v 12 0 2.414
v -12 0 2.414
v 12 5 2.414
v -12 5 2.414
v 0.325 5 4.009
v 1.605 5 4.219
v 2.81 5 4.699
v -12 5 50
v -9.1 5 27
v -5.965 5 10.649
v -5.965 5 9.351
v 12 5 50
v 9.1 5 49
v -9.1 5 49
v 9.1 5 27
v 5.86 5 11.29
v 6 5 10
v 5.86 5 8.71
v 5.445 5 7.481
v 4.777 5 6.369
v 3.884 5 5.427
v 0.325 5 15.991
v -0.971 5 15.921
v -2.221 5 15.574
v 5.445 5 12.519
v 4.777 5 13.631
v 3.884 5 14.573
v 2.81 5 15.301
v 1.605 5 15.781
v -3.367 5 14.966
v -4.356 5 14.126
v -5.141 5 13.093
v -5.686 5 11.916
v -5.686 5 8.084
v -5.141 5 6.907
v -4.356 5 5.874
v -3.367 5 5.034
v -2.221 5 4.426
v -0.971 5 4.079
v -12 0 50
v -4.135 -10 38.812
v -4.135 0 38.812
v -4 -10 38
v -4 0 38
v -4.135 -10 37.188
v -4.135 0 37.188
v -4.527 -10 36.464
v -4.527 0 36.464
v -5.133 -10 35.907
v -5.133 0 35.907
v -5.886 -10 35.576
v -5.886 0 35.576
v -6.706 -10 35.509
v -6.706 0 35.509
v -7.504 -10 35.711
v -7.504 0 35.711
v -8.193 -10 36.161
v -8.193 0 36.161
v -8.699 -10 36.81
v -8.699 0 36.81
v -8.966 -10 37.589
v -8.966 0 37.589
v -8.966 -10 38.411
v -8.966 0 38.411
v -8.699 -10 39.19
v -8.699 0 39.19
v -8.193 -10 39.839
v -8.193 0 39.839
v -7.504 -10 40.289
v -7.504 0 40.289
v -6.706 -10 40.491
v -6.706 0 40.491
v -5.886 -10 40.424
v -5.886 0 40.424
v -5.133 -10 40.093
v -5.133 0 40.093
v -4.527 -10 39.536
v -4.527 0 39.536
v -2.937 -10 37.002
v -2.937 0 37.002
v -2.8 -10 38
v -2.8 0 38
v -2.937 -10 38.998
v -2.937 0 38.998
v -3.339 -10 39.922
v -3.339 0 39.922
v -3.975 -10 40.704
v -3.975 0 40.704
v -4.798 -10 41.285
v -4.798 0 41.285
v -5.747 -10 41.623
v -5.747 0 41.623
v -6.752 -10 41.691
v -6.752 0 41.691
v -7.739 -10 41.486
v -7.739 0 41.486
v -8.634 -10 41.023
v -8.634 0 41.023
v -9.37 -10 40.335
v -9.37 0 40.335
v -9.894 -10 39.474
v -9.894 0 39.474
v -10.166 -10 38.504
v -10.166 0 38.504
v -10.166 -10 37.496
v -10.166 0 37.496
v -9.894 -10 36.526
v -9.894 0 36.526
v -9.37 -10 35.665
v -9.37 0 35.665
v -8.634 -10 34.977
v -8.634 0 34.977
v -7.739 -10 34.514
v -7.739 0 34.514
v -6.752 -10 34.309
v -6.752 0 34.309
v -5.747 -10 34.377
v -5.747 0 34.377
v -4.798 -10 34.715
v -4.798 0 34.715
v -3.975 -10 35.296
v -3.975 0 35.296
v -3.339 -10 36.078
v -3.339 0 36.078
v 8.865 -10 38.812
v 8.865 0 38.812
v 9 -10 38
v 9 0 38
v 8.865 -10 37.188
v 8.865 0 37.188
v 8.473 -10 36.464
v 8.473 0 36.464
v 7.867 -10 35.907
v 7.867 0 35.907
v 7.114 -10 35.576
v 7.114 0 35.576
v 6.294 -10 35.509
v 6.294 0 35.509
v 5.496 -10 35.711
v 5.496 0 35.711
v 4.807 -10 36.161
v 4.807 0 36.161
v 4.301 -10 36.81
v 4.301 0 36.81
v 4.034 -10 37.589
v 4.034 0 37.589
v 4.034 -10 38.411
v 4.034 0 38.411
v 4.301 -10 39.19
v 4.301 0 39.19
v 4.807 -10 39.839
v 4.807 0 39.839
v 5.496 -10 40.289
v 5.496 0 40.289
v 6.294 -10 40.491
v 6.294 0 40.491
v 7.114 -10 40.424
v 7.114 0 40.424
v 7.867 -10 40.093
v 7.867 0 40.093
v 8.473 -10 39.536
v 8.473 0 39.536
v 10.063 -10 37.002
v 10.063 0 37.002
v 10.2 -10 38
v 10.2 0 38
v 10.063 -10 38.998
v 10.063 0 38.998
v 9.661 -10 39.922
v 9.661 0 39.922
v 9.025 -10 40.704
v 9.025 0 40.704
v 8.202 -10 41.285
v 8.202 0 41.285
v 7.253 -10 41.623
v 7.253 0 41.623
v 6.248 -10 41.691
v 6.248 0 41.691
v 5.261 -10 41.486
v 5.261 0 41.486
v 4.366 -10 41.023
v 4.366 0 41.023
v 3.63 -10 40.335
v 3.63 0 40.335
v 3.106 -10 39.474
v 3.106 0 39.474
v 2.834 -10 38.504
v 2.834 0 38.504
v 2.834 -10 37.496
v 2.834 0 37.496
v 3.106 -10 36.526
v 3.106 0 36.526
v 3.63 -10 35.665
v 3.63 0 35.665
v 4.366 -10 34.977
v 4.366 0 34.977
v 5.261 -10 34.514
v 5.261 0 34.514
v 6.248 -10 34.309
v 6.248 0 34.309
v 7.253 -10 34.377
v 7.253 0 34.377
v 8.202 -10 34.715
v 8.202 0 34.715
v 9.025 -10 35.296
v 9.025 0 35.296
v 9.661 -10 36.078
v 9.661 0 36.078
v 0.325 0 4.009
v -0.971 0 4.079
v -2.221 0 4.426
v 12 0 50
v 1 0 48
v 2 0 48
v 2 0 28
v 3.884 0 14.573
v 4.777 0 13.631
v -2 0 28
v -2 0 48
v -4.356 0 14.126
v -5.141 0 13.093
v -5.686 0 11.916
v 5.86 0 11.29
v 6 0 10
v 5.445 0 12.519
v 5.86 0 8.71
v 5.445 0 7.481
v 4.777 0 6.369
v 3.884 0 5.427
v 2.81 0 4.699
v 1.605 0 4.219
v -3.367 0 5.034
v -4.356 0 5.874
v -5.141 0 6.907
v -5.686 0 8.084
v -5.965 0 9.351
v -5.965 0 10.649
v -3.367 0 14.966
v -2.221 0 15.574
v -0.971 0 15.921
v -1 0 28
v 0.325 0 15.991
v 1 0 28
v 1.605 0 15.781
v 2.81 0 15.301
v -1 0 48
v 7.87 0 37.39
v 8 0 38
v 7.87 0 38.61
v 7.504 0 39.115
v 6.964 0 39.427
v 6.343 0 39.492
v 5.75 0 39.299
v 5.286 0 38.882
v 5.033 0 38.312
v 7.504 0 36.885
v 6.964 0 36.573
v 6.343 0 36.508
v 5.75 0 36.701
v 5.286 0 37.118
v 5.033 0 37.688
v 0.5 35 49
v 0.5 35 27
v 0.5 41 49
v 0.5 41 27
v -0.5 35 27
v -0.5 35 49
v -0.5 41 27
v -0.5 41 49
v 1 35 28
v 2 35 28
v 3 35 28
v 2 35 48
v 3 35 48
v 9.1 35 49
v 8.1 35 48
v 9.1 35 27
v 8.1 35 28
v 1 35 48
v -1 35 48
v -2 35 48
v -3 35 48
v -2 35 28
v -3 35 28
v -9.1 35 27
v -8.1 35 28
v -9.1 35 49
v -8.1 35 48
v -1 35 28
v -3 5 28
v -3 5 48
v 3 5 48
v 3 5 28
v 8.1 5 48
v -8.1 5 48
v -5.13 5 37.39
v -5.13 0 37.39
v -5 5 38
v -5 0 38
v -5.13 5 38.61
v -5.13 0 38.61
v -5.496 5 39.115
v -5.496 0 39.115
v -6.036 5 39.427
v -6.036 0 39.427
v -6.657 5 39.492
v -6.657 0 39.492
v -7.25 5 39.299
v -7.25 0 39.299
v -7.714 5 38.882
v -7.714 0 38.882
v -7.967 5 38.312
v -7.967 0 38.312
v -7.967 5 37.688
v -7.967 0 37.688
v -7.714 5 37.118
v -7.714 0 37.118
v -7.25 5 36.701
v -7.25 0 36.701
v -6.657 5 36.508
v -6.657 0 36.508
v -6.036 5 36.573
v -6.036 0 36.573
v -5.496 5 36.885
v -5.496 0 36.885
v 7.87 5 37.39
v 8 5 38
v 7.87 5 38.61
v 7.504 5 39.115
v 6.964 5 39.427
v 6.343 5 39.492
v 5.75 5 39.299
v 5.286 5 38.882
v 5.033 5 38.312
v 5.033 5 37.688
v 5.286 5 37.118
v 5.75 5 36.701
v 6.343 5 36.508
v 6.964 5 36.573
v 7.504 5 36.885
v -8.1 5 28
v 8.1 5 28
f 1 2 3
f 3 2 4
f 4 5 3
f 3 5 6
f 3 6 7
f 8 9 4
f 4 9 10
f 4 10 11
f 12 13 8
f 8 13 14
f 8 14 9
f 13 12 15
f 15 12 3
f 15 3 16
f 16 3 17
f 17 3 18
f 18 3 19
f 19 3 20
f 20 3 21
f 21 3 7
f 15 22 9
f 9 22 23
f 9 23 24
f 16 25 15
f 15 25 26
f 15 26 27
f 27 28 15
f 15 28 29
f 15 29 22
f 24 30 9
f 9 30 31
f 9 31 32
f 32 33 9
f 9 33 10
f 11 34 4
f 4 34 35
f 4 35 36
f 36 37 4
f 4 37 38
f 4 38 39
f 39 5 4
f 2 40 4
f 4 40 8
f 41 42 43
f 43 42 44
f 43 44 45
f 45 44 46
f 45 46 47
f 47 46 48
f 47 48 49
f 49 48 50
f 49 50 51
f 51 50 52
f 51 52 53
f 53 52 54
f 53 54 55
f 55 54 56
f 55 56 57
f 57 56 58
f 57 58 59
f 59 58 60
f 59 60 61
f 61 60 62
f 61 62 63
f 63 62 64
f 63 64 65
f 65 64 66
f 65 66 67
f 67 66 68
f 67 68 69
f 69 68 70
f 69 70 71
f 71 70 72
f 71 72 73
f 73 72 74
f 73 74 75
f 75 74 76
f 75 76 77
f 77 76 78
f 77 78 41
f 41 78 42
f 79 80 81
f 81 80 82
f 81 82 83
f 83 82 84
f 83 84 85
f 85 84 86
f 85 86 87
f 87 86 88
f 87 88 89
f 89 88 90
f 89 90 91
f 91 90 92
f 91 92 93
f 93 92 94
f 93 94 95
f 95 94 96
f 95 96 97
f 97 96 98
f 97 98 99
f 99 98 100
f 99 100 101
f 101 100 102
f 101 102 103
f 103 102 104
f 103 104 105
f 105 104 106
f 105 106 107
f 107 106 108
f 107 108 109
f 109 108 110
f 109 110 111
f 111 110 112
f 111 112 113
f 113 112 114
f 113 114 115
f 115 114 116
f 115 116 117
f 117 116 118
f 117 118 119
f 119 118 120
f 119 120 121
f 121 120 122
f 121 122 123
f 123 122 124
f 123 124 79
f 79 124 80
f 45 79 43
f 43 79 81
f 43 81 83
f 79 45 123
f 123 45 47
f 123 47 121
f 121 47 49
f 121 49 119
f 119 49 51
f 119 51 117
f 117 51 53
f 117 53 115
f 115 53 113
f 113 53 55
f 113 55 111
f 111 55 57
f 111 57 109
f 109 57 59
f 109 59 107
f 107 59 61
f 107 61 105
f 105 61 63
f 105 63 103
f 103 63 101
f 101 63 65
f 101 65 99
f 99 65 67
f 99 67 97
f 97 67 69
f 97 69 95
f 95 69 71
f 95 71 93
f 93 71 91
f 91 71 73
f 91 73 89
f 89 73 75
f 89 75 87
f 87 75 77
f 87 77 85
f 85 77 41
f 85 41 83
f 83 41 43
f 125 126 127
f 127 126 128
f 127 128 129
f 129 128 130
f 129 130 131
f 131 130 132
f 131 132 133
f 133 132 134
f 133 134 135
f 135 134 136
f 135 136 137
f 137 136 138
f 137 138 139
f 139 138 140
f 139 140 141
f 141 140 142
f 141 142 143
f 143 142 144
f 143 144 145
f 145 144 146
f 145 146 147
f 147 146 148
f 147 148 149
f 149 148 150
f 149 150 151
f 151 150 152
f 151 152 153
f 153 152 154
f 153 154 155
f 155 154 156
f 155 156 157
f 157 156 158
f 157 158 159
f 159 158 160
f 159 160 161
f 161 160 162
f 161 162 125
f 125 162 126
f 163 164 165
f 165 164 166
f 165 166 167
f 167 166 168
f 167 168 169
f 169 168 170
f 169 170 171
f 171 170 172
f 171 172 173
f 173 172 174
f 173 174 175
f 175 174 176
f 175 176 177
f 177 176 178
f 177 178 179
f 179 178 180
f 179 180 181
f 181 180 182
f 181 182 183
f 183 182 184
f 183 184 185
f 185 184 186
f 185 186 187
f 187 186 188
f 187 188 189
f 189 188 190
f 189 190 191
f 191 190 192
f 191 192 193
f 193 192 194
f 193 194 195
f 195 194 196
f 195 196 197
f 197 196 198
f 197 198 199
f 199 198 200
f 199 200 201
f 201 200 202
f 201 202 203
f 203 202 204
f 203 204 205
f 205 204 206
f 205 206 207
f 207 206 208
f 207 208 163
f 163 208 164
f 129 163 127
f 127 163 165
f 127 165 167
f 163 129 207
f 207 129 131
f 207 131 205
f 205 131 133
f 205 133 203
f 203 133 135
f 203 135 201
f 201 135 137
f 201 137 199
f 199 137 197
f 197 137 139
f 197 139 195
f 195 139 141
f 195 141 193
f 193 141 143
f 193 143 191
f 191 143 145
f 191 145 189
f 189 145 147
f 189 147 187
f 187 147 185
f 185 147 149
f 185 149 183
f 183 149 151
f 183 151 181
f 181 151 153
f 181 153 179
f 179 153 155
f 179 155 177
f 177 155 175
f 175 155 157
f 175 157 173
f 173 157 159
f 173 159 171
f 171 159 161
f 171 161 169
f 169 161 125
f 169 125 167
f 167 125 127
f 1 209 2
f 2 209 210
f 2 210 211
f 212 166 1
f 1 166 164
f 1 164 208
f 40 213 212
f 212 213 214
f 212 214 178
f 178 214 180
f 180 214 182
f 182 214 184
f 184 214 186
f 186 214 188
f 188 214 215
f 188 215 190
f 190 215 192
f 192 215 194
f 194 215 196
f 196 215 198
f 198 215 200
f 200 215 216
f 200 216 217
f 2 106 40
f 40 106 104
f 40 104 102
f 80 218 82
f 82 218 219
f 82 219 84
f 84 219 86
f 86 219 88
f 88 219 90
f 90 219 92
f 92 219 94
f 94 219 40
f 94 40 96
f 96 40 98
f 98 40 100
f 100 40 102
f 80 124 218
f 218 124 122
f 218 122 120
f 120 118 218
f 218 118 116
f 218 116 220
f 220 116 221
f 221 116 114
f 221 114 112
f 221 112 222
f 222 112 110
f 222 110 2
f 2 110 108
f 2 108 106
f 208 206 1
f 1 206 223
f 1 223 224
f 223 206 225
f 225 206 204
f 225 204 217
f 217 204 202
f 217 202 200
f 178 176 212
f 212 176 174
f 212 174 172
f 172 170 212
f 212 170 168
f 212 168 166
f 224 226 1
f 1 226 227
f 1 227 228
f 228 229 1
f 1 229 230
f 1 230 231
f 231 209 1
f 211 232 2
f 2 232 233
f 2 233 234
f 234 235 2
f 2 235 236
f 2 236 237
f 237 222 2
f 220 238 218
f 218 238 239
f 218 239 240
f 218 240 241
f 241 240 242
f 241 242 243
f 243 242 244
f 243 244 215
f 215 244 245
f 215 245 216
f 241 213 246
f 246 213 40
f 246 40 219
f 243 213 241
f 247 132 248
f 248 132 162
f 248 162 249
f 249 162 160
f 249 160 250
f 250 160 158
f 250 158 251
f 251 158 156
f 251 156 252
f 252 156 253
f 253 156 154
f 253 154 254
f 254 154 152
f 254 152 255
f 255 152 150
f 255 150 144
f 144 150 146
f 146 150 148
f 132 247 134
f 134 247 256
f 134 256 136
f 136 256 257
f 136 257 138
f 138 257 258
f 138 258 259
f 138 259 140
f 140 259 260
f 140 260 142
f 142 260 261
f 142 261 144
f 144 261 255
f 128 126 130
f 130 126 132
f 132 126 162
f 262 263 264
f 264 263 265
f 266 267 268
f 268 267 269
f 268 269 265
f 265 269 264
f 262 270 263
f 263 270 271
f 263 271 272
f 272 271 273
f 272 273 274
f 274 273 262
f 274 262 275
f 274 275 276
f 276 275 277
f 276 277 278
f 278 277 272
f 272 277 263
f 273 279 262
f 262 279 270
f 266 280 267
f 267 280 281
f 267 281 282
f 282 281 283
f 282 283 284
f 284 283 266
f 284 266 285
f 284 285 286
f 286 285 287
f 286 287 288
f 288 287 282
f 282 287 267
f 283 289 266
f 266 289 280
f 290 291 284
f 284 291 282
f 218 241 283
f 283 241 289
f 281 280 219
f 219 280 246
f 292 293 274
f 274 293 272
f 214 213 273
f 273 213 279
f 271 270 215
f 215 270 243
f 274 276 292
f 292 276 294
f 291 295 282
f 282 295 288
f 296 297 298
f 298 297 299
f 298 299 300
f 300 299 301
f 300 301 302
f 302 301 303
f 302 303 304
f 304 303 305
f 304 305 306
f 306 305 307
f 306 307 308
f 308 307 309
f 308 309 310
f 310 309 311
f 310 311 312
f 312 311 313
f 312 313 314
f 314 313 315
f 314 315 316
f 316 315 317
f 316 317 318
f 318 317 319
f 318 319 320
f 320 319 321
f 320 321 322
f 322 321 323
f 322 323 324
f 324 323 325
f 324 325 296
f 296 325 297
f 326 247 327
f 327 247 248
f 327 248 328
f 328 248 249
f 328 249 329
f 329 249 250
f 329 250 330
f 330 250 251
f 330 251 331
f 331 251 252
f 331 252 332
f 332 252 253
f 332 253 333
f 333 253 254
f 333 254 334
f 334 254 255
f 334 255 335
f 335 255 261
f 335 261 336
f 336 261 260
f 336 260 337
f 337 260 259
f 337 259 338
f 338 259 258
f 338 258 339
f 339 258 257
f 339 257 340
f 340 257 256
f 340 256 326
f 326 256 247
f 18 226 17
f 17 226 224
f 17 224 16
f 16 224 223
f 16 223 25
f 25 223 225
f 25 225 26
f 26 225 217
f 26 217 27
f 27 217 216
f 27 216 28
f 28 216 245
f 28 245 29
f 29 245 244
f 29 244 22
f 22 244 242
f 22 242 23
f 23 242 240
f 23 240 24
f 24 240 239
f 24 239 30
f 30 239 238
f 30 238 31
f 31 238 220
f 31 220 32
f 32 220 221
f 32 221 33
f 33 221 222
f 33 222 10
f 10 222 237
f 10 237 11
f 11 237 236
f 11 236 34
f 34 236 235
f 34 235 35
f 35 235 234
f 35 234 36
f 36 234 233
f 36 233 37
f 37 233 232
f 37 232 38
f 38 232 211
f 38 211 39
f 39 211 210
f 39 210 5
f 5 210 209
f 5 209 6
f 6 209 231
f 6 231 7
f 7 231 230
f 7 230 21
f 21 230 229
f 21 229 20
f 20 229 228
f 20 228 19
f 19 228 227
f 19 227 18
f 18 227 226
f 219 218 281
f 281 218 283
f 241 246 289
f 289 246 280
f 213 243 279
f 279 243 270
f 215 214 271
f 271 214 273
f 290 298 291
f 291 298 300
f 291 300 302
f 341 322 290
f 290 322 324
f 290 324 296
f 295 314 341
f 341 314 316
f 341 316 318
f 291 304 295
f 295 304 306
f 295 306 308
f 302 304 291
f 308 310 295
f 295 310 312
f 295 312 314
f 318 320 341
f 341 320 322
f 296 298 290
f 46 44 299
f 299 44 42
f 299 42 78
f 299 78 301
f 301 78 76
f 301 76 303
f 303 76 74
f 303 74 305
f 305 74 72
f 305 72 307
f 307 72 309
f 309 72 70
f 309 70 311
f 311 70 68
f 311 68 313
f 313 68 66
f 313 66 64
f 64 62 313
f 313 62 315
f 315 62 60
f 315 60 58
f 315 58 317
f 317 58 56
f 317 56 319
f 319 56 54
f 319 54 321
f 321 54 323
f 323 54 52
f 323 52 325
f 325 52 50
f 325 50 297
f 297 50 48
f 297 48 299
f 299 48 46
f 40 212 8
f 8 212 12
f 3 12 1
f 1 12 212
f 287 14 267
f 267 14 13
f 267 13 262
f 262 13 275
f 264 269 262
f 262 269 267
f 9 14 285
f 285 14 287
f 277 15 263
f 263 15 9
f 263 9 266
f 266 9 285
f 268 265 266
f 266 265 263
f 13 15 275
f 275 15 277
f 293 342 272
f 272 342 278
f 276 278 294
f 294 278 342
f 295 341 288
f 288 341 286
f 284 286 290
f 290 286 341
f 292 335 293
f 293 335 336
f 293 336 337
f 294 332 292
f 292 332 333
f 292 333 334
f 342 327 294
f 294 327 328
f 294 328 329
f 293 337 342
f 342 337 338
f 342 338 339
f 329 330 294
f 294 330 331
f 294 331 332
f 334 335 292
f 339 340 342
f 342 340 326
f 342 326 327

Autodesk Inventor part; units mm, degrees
ref_plane "YZ Plane" through (0, 0, 0) normal (1, 0, 0) x (0, 1, 0)
ref_plane "XZ Plane" through (0, 0, 0) normal (0, 1, 0) x (-1, 0, 0)
sketch "Sketch1" plane through (0, 0, 0) normal (0, 1, 0) x (-1, 0, 0)
  line L0 (12, 50) -> (-12, 50)
  line L1 (-12, 50) -> (-12, -50)
  line L2 (-12, -50) -> (12, -50)
  line L3 (12, -50) -> (12, 50)
  line L4 (12, 50) -> (-12, -50) construction
  line L5 (-12, 50) -> (12, -50) construction
  point P0 (0, 0)
  dimension "d0" = 24
  dimension "d1" = 100
  dimension "d135" = 50
extrude "Extrusion1" add sketch "Sketch1" along normal blind 5
sketch "Sketch3" plane through (0, 5, 0) normal (0, 1, 0) x (1, 0, 0)
  line L0 (-0.2475, -27) -> (0.2525, -27)
  line L1 (0.2525, -27) -> (0.2525, -49)
  line L2 (0.2525, -49) -> (-0.2475, -49)
  line L3 (-0.2475, -49) -> (-0.2475, -27)
  line L4 (12, -50) -> (12, 50) projected
  line L5 (-12, 50) -> (-12, -50) projected
  line L6 (-12, -50) -> (12, -50) projected
  point P0 (0, 0)
  dimension "d24" = 0.5
  dimension "d25" = 11.7475
  dimension "d26" = 22
  dimension "d97" = 11.7525
  dimension "d113" = 1
extrude "Extrusion3" add sketch "Sketch3" along normal blind 30
sketch "Sketch4" plane through (0, 5, 0) normal (0, 1, 0) x (1, 0, 0)
  line L0 (-9.1, -27) -> (9.1, -27)
  line L1 (9.1, -27) -> (9.1, -28)
  line L2 (9.1, -28) -> (-9.1, -28)
  line L3 (-9.1, -28) -> (-9.1, -27)
  line L4 (12, -50) -> (12, 50) projected
  line L5 (-12, 50) -> (-12, -50) projected
  line L6 (-12, -50) -> (12, -50) projected
  point P0 (0, 0)
  dimension "d29" = 1
  dimension "d30" = 2.9
  dimension "d31" = 2.9
  dimension "d114" = 22
extrude "Extrusion4" add sketch "Sketch4" along normal blind 30
sketch "Sketch7" plane through (0, 5, 0) normal (0, 1, 0) x (1, 0, 0)
  line L0 (9.1, -27) -> (8.1, -27)
  line L1 (8.1, -27) -> (8.1, -49)
  line L2 (8.1, -49) -> (9.1, -49)
  line L3 (9.1, -49) -> (9.1, -27)
  line L4 (12, -50) -> (12, 50) projected
  point P0 (0, 0)
  dimension "d46" = 22
  dimension "d47" = 2.9
  dimension "d48" = 1
extrude "Extrusion7" add sketch "Sketch7" along normal blind 30
sketch "Sketch8" plane through (0, 5, 0) normal (0, 1, 0) x (1, 0, 0)
  line L0 (-9.1, -28) -> (-8.1, -28)
  line L1 (-8.1, -28) -> (-8.1, -49)
  line L2 (-8.1, -49) -> (-9.1, -49)
  line L3 (-9.1, -49) -> (-9.1, -28)
  line L4 (-12, 50) -> (-12, -50) projected
  point P0 (0, 0)
  dimension "d51" = 21
  dimension "d52" = 2.9
  dimension "d53" = 1
extrude "Extrusion8" add sketch "Sketch8" along normal blind 30
sketch "Sketch9" plane through (0, 5, 0) normal (0, 1, 0) x (1, 0, 0)
  line L0 (-8.3501, -48) -> (-0.2475, -48)
  line L1 (-0.2475, -48) -> (-0.2475, -49)
  line L2 (-0.2475, -49) -> (-8.3501, -49)
  line L3 (-8.3501, -49) -> (-8.3501, -48)
  line L4 (-0.2475, -49) -> (-0.2475, -27) projected
  line L5 (-12, -50) -> (12, -50) projected
  point P0 (0, 0)
  point P1 (-0.2475, -28)
  dimension "d56" = 8.1026
  dimension "d57" = 1
  dimension "d58" = 0
  dimension "d59" = 1
extrude "Extrusion9" add sketch "Sketch9" along normal blind 30
sketch "Sketch10" plane through (0, 5, 0) normal (0, 1, 0) x (1, 0, 0)
  line L0 (0.2525, -48) -> (8.3551, -48)
  line L1 (8.3551, -48) -> (8.3551, -49)
  line L2 (8.3551, -49) -> (0.2525, -49)
  line L3 (0.2525, -49) -> (0.2525, -48)
  line L4 (-12, -50) -> (12, -50) projected
  line L5 (0.2525, -27) -> (0.2525, -49) projected
  point P0 (0, 0)
  point P1 (0.2525, -28)
  dimension "d62" = 8.1026
  dimension "d63" = 1
  dimension "d64" = 1
  dimension "d65" = 0
extrude "Extrusion10" add sketch "Sketch10" along normal blind 30
sketch "Sketch11" plane through (0, 5, 0) normal (0, 1, 0) x (1, 0, 0)
  point P0 (0, 0)
sketch "Sketch12" plane through (0, 0, 0) normal (0, -1, 0) x (1, 0, 0)
  circle A0 centre (4.5, 43) radius 3.25
  line L0 (12, 50) -> (12, -50) projected
  circle A1 centre (-4.5, 43) radius 3.25
  line L1 (-12, -50) -> (-12, 50) projected
  line L2 (-12, 50) -> (12, 50) projected
  point P0 (0, 0)
  dimension "d69" = 6.5
  dimension "d70" = 7.5
  dimension "d72" = 6.5
  dimension "d73" = 7.5
  dimension "d74" = 7
  dimension "d75" = 7
extrude "Extrusion11" add sketch "Sketch12" along normal blind 20
sketch "Sketch15" plane through (4.5, -20, 43) normal (0, -1, 0) x (1, 0, 0)
  point P0 (-4.5, -43)
extrude "Extrusion12" [suppressed]
sketch "Sketch16" plane through (-4.5, -20, 43) normal (0, -1, 0) x (1, 0, 0)
  point P0 (4.5, -43)
extrude "Extrusion13" [suppressed]
ref_plane "Work Plane1" through (-12, 0, -50) normal (0, -1, 0) x (1, 0, 0)
split body "Split1" result two bodies by plane through (-12, 0, -50) normal (0, -1, 0) first body at (7.2144, -13.3333, 42.5589) (-1.7856, -13.3333, 42.5589)
split "Split2" plane through (-12, 0, -50) removes the side toward (0, -1, 0)
sketch "Sketch20" plane through (0, 0, 0) normal (0, -1, 0) x (1, 0, 0)
  line L0 (-1, 28) -> (-2, 28)
  line L1 (-2, 28) -> (-2, 48)
  line L2 (-2, 48) -> (-1, 48)
  line L3 (-1, 48) -> (-1, 28)
  line L4 (1, 28) -> (2, 28)
  line L5 (2, 28) -> (2, 48)
  line L6 (2, 48) -> (1, 48)
  line L7 (1, 48) -> (1, 28)
  line L8 (-12, -50) -> (-12, 50) projected
  line L9 (12, 50) -> (12, -50) projected
  line L10 (-12, 50) -> (12, 50) projected
  point P0 (0, 0)
  dimension "d84" = 11
  dimension "d85" = 11
  dimension "d86" = 1
  dimension "d87" = 1
  dimension "d88" = 20
  dimension "d89" = 2
extrude "Extrusion14" cut sketch "Sketch20" against normal blind 25.4 bodies 3
sketch "Sketch25" plane through (0, 0, 0) normal (0, -1, 0) x (1, 0, 0)
  circle A0 centre (0, 10) radius 6
  line L0 (12, -50) -> (-12, -50) projected
  point P0 (0, 0)
  dimension "d109" = 12
  dimension "d110" = 60
extrude "Extrusion18" cut sketch "Sketch25" against normal blind 25.4 bodies 3
sketch "Sketch26" plane through (0, 5, 0) normal (0, 1, 0) x (1, 0, 0)
  point P0 (0, 0)
sketch "Sketch27" plane through (-1, 0, 48) normal (0, 0, -1) x (-1, 0, 0)
  point P0 (-1, 0)
sketch "Sketch28" plane through (0, 5, 0) normal (0, 1, 0) x (1, 0, 0)
  point P0 (0, 0)
sketch "Sketch29" plane through (0, 0, 0) normal (0, -1, 0) x (1, 0, 0)
  circle A0 centre (-6.5, 38) radius 1.5
  circle A1 centre (6.5, 38) radius 1.5
  line L0 (-12, 50) -> (12, 50) projected
  line L1 (-12, -50) -> (-12, 50) projected
  line L2 (12, 50) -> (12, -50) projected
  point P0 (0, 0)
  dimension "d121" = 3
  dimension "d122" = 3
  dimension "d123" = 12
  dimension "d124" = 12
  dimension "d125" = 5.5
  dimension "d126" = 5.5
extrude "Extrusion19" cut sketch "Sketch29" against normal blind 25.4 bodies 3
sketch "Sketch30" plane through (0, 35, 0) normal (0, 1, 0) x (1, 0, 0)
  point P0 (0, 0)
sketch "Sketch31" plane through (0, 5, 0) normal (0, 1, 0) x (1, 0, 0)
  line L0 (-1, -28) -> (1, -28)
  line L1 (1, -28) -> (1, -48)
  line L2 (1, -48) -> (-1, -48)
  line L3 (-1, -48) -> (-1, -28)
  line L4 (-0.2475, -28) -> (-1, -28) projected
  line L5 (-1, -28) -> (-1, -48) projected
  line L6 (1, -48) -> (1, -28) projected
  line L7 (0.2525, -48) -> (1, -48) projected
  point P0 (0, 0)
  dimension "d129" = 0
  dimension "d130" = 0
  dimension "d131" = 0
  dimension "d132" = 0
extrude "Extrusion20" add sketch "Sketch31" along normal blind 30 bodies 3
sketch "Sketch32" plane through (0, 0, 0) normal (0, -1, 0) x (1, 0, 0)
  point P0 (0, 0)
sketch "Sketch33" plane through (0, 0, 0) normal (0, -1, 0) x (1, 0, 0)
  point P0 (0, 0)
sketch "Sketch34" plane through (0, 0, 0) normal (0, -1, 0) x (1, 0, 0)
  point P0 (0, 0)
sketch "Sketch35" plane through (0, 5, 0) normal (0, 1, 0) x (1, 0, 0)
  point P0 (0, 0)
sketch "Sketch36" plane through (0, 5, 0) normal (0, 1, 0) x (1, 0, 0)
  point P0 (0, 0)
sketch "Sketch37" plane through (0, 5, 0) normal (0, 1, 0) x (1, 0, 0)
  point P0 (0, 0)
sketch "Sketch38" plane through (0, 5, 0) normal (0, 1, 0) x (1, 0, 0)
  point P0 (0, 0)
sketch "Sketch39" plane through (0, 5, 0) normal (0, 1, 0) x (1, 0, 0)
  point P0 (0, 0)
sketch "Sketch40" plane through (0, 5, 0) normal (0, 1, 0) x (1, 0, 0)
  line L0 (2, -28) -> (3, -28)
  line L1 (3, -28) -> (3, -48)
  line L2 (3, -48) -> (2, -48)
  line L3 (2, -48) -> (2, -28)
  line L4 (2, -48) -> (8.1, -48) projected
  line L5 (8.1, -28) -> (2, -28) projected
  point P0 (0, 0)
  dimension "d136" = 0
  dimension "d137" = 0
  dimension "d138" = 1
  dimension "d139" = 0
extrude "Extrusion21" add sketch "Sketch40" along normal blind 30 bodies 3
sketch "Sketch41" plane through (0, 5, 0) normal (0, 1, 0) x (1, 0, 0)
  line L0 (-2, -28) -> (-3, -28)
  line L1 (-3, -28) -> (-3, -48)
  line L2 (-3, -48) -> (-2, -48)
  line L3 (-2, -48) -> (-2, -28)
  line L4 (-2, -28) -> (-8.1, -28) projected
  line L5 (-2, -48) -> (-2, -28) projected
  line L6 (-8.1, -48) -> (-2, -48) projected
  point P0 (0, 0)
  dimension "d142" = 0
  dimension "d143" = 0
  dimension "d144" = 0
  dimension "d145" = 1
extrude "Extrusion22" add sketch "Sketch41" along normal blind 30 bodies 3
sketch "Sketch42" plane through (0, 35, 0) normal (0, 1, 0) x (1, 0, 0)
  point P0 (0, 0)
sketch "Sketch43" plane through (0, 35, 0) normal (0, 1, 0) x (1, 0, 0)
  line L0 (9.1, -27) -> (-9.1, -27) projected
  line L1 (-9.1, -49) -> (9.1, -49) projected
  line L2 (-0.5, -27) -> (0.5, -27)
  line L3 (0.5, -27) -> (0.5, -49)
  line L4 (0.5, -49) -> (-0.5, -49)
  line L5 (-0.5, -49) -> (-0.5, -27)
  line L6 (1, -48) -> (1, -28) projected
  point P0 (0, 0)
  dimension "d148" = 1
  dimension "d149" = 0.5
extrude "baffle" add sketch "Sketch43" along normal blind 6 bodies 3
sketch "Sketch45" plane through (0, 0, 0) normal (0, -1, 0) x (1, 0, 0)
  circle A0 centre (-6.5, 38) radius 2.5
  circle A1 centre (-6.5, 38) radius 1.5 projected
  circle A2 centre (-6.5, 38) radius 3.7
  line L0 (-12, 50) -> (12, 50) projected
  line L1 (0, 50) -> (0, 16)
  circle A3 centre (0, 10) radius 6 projected
  circle A4 centre (6.5, 38) radius 2.5
  circle A5 centre (6.5, 38) radius 3.7
  point P0 (0, 0)
  dimension "d155" = 5
  dimension "d156" = 1.2
extrude "Extrusion25" add sketch "Sketch45" along normal blind 10 contours A2 | A5 bodies 3
sketch "Sketch46" plane through (0, 5, 0) normal (0, 1, 0) x (1, 0, 0)
  line L0 (12, 50) -> (-12, 50) projected
  line L1 (12, -50) -> (12, 50) projected
  line L2 (-12, 50) -> (12, 50)
  line L3 (12, 50) -> (12, -2.4141)
  line L4 (12, -2.4141) -> (-12, -2.4141)
  line L5 (-12, -2.4141) -> (-12, 50)
  point P0 (0, 0)
extrude "Extrusion26" cut sketch "Sketch46" against normal through all bodies 3
properties part number "jtd_lid4_20160910"
